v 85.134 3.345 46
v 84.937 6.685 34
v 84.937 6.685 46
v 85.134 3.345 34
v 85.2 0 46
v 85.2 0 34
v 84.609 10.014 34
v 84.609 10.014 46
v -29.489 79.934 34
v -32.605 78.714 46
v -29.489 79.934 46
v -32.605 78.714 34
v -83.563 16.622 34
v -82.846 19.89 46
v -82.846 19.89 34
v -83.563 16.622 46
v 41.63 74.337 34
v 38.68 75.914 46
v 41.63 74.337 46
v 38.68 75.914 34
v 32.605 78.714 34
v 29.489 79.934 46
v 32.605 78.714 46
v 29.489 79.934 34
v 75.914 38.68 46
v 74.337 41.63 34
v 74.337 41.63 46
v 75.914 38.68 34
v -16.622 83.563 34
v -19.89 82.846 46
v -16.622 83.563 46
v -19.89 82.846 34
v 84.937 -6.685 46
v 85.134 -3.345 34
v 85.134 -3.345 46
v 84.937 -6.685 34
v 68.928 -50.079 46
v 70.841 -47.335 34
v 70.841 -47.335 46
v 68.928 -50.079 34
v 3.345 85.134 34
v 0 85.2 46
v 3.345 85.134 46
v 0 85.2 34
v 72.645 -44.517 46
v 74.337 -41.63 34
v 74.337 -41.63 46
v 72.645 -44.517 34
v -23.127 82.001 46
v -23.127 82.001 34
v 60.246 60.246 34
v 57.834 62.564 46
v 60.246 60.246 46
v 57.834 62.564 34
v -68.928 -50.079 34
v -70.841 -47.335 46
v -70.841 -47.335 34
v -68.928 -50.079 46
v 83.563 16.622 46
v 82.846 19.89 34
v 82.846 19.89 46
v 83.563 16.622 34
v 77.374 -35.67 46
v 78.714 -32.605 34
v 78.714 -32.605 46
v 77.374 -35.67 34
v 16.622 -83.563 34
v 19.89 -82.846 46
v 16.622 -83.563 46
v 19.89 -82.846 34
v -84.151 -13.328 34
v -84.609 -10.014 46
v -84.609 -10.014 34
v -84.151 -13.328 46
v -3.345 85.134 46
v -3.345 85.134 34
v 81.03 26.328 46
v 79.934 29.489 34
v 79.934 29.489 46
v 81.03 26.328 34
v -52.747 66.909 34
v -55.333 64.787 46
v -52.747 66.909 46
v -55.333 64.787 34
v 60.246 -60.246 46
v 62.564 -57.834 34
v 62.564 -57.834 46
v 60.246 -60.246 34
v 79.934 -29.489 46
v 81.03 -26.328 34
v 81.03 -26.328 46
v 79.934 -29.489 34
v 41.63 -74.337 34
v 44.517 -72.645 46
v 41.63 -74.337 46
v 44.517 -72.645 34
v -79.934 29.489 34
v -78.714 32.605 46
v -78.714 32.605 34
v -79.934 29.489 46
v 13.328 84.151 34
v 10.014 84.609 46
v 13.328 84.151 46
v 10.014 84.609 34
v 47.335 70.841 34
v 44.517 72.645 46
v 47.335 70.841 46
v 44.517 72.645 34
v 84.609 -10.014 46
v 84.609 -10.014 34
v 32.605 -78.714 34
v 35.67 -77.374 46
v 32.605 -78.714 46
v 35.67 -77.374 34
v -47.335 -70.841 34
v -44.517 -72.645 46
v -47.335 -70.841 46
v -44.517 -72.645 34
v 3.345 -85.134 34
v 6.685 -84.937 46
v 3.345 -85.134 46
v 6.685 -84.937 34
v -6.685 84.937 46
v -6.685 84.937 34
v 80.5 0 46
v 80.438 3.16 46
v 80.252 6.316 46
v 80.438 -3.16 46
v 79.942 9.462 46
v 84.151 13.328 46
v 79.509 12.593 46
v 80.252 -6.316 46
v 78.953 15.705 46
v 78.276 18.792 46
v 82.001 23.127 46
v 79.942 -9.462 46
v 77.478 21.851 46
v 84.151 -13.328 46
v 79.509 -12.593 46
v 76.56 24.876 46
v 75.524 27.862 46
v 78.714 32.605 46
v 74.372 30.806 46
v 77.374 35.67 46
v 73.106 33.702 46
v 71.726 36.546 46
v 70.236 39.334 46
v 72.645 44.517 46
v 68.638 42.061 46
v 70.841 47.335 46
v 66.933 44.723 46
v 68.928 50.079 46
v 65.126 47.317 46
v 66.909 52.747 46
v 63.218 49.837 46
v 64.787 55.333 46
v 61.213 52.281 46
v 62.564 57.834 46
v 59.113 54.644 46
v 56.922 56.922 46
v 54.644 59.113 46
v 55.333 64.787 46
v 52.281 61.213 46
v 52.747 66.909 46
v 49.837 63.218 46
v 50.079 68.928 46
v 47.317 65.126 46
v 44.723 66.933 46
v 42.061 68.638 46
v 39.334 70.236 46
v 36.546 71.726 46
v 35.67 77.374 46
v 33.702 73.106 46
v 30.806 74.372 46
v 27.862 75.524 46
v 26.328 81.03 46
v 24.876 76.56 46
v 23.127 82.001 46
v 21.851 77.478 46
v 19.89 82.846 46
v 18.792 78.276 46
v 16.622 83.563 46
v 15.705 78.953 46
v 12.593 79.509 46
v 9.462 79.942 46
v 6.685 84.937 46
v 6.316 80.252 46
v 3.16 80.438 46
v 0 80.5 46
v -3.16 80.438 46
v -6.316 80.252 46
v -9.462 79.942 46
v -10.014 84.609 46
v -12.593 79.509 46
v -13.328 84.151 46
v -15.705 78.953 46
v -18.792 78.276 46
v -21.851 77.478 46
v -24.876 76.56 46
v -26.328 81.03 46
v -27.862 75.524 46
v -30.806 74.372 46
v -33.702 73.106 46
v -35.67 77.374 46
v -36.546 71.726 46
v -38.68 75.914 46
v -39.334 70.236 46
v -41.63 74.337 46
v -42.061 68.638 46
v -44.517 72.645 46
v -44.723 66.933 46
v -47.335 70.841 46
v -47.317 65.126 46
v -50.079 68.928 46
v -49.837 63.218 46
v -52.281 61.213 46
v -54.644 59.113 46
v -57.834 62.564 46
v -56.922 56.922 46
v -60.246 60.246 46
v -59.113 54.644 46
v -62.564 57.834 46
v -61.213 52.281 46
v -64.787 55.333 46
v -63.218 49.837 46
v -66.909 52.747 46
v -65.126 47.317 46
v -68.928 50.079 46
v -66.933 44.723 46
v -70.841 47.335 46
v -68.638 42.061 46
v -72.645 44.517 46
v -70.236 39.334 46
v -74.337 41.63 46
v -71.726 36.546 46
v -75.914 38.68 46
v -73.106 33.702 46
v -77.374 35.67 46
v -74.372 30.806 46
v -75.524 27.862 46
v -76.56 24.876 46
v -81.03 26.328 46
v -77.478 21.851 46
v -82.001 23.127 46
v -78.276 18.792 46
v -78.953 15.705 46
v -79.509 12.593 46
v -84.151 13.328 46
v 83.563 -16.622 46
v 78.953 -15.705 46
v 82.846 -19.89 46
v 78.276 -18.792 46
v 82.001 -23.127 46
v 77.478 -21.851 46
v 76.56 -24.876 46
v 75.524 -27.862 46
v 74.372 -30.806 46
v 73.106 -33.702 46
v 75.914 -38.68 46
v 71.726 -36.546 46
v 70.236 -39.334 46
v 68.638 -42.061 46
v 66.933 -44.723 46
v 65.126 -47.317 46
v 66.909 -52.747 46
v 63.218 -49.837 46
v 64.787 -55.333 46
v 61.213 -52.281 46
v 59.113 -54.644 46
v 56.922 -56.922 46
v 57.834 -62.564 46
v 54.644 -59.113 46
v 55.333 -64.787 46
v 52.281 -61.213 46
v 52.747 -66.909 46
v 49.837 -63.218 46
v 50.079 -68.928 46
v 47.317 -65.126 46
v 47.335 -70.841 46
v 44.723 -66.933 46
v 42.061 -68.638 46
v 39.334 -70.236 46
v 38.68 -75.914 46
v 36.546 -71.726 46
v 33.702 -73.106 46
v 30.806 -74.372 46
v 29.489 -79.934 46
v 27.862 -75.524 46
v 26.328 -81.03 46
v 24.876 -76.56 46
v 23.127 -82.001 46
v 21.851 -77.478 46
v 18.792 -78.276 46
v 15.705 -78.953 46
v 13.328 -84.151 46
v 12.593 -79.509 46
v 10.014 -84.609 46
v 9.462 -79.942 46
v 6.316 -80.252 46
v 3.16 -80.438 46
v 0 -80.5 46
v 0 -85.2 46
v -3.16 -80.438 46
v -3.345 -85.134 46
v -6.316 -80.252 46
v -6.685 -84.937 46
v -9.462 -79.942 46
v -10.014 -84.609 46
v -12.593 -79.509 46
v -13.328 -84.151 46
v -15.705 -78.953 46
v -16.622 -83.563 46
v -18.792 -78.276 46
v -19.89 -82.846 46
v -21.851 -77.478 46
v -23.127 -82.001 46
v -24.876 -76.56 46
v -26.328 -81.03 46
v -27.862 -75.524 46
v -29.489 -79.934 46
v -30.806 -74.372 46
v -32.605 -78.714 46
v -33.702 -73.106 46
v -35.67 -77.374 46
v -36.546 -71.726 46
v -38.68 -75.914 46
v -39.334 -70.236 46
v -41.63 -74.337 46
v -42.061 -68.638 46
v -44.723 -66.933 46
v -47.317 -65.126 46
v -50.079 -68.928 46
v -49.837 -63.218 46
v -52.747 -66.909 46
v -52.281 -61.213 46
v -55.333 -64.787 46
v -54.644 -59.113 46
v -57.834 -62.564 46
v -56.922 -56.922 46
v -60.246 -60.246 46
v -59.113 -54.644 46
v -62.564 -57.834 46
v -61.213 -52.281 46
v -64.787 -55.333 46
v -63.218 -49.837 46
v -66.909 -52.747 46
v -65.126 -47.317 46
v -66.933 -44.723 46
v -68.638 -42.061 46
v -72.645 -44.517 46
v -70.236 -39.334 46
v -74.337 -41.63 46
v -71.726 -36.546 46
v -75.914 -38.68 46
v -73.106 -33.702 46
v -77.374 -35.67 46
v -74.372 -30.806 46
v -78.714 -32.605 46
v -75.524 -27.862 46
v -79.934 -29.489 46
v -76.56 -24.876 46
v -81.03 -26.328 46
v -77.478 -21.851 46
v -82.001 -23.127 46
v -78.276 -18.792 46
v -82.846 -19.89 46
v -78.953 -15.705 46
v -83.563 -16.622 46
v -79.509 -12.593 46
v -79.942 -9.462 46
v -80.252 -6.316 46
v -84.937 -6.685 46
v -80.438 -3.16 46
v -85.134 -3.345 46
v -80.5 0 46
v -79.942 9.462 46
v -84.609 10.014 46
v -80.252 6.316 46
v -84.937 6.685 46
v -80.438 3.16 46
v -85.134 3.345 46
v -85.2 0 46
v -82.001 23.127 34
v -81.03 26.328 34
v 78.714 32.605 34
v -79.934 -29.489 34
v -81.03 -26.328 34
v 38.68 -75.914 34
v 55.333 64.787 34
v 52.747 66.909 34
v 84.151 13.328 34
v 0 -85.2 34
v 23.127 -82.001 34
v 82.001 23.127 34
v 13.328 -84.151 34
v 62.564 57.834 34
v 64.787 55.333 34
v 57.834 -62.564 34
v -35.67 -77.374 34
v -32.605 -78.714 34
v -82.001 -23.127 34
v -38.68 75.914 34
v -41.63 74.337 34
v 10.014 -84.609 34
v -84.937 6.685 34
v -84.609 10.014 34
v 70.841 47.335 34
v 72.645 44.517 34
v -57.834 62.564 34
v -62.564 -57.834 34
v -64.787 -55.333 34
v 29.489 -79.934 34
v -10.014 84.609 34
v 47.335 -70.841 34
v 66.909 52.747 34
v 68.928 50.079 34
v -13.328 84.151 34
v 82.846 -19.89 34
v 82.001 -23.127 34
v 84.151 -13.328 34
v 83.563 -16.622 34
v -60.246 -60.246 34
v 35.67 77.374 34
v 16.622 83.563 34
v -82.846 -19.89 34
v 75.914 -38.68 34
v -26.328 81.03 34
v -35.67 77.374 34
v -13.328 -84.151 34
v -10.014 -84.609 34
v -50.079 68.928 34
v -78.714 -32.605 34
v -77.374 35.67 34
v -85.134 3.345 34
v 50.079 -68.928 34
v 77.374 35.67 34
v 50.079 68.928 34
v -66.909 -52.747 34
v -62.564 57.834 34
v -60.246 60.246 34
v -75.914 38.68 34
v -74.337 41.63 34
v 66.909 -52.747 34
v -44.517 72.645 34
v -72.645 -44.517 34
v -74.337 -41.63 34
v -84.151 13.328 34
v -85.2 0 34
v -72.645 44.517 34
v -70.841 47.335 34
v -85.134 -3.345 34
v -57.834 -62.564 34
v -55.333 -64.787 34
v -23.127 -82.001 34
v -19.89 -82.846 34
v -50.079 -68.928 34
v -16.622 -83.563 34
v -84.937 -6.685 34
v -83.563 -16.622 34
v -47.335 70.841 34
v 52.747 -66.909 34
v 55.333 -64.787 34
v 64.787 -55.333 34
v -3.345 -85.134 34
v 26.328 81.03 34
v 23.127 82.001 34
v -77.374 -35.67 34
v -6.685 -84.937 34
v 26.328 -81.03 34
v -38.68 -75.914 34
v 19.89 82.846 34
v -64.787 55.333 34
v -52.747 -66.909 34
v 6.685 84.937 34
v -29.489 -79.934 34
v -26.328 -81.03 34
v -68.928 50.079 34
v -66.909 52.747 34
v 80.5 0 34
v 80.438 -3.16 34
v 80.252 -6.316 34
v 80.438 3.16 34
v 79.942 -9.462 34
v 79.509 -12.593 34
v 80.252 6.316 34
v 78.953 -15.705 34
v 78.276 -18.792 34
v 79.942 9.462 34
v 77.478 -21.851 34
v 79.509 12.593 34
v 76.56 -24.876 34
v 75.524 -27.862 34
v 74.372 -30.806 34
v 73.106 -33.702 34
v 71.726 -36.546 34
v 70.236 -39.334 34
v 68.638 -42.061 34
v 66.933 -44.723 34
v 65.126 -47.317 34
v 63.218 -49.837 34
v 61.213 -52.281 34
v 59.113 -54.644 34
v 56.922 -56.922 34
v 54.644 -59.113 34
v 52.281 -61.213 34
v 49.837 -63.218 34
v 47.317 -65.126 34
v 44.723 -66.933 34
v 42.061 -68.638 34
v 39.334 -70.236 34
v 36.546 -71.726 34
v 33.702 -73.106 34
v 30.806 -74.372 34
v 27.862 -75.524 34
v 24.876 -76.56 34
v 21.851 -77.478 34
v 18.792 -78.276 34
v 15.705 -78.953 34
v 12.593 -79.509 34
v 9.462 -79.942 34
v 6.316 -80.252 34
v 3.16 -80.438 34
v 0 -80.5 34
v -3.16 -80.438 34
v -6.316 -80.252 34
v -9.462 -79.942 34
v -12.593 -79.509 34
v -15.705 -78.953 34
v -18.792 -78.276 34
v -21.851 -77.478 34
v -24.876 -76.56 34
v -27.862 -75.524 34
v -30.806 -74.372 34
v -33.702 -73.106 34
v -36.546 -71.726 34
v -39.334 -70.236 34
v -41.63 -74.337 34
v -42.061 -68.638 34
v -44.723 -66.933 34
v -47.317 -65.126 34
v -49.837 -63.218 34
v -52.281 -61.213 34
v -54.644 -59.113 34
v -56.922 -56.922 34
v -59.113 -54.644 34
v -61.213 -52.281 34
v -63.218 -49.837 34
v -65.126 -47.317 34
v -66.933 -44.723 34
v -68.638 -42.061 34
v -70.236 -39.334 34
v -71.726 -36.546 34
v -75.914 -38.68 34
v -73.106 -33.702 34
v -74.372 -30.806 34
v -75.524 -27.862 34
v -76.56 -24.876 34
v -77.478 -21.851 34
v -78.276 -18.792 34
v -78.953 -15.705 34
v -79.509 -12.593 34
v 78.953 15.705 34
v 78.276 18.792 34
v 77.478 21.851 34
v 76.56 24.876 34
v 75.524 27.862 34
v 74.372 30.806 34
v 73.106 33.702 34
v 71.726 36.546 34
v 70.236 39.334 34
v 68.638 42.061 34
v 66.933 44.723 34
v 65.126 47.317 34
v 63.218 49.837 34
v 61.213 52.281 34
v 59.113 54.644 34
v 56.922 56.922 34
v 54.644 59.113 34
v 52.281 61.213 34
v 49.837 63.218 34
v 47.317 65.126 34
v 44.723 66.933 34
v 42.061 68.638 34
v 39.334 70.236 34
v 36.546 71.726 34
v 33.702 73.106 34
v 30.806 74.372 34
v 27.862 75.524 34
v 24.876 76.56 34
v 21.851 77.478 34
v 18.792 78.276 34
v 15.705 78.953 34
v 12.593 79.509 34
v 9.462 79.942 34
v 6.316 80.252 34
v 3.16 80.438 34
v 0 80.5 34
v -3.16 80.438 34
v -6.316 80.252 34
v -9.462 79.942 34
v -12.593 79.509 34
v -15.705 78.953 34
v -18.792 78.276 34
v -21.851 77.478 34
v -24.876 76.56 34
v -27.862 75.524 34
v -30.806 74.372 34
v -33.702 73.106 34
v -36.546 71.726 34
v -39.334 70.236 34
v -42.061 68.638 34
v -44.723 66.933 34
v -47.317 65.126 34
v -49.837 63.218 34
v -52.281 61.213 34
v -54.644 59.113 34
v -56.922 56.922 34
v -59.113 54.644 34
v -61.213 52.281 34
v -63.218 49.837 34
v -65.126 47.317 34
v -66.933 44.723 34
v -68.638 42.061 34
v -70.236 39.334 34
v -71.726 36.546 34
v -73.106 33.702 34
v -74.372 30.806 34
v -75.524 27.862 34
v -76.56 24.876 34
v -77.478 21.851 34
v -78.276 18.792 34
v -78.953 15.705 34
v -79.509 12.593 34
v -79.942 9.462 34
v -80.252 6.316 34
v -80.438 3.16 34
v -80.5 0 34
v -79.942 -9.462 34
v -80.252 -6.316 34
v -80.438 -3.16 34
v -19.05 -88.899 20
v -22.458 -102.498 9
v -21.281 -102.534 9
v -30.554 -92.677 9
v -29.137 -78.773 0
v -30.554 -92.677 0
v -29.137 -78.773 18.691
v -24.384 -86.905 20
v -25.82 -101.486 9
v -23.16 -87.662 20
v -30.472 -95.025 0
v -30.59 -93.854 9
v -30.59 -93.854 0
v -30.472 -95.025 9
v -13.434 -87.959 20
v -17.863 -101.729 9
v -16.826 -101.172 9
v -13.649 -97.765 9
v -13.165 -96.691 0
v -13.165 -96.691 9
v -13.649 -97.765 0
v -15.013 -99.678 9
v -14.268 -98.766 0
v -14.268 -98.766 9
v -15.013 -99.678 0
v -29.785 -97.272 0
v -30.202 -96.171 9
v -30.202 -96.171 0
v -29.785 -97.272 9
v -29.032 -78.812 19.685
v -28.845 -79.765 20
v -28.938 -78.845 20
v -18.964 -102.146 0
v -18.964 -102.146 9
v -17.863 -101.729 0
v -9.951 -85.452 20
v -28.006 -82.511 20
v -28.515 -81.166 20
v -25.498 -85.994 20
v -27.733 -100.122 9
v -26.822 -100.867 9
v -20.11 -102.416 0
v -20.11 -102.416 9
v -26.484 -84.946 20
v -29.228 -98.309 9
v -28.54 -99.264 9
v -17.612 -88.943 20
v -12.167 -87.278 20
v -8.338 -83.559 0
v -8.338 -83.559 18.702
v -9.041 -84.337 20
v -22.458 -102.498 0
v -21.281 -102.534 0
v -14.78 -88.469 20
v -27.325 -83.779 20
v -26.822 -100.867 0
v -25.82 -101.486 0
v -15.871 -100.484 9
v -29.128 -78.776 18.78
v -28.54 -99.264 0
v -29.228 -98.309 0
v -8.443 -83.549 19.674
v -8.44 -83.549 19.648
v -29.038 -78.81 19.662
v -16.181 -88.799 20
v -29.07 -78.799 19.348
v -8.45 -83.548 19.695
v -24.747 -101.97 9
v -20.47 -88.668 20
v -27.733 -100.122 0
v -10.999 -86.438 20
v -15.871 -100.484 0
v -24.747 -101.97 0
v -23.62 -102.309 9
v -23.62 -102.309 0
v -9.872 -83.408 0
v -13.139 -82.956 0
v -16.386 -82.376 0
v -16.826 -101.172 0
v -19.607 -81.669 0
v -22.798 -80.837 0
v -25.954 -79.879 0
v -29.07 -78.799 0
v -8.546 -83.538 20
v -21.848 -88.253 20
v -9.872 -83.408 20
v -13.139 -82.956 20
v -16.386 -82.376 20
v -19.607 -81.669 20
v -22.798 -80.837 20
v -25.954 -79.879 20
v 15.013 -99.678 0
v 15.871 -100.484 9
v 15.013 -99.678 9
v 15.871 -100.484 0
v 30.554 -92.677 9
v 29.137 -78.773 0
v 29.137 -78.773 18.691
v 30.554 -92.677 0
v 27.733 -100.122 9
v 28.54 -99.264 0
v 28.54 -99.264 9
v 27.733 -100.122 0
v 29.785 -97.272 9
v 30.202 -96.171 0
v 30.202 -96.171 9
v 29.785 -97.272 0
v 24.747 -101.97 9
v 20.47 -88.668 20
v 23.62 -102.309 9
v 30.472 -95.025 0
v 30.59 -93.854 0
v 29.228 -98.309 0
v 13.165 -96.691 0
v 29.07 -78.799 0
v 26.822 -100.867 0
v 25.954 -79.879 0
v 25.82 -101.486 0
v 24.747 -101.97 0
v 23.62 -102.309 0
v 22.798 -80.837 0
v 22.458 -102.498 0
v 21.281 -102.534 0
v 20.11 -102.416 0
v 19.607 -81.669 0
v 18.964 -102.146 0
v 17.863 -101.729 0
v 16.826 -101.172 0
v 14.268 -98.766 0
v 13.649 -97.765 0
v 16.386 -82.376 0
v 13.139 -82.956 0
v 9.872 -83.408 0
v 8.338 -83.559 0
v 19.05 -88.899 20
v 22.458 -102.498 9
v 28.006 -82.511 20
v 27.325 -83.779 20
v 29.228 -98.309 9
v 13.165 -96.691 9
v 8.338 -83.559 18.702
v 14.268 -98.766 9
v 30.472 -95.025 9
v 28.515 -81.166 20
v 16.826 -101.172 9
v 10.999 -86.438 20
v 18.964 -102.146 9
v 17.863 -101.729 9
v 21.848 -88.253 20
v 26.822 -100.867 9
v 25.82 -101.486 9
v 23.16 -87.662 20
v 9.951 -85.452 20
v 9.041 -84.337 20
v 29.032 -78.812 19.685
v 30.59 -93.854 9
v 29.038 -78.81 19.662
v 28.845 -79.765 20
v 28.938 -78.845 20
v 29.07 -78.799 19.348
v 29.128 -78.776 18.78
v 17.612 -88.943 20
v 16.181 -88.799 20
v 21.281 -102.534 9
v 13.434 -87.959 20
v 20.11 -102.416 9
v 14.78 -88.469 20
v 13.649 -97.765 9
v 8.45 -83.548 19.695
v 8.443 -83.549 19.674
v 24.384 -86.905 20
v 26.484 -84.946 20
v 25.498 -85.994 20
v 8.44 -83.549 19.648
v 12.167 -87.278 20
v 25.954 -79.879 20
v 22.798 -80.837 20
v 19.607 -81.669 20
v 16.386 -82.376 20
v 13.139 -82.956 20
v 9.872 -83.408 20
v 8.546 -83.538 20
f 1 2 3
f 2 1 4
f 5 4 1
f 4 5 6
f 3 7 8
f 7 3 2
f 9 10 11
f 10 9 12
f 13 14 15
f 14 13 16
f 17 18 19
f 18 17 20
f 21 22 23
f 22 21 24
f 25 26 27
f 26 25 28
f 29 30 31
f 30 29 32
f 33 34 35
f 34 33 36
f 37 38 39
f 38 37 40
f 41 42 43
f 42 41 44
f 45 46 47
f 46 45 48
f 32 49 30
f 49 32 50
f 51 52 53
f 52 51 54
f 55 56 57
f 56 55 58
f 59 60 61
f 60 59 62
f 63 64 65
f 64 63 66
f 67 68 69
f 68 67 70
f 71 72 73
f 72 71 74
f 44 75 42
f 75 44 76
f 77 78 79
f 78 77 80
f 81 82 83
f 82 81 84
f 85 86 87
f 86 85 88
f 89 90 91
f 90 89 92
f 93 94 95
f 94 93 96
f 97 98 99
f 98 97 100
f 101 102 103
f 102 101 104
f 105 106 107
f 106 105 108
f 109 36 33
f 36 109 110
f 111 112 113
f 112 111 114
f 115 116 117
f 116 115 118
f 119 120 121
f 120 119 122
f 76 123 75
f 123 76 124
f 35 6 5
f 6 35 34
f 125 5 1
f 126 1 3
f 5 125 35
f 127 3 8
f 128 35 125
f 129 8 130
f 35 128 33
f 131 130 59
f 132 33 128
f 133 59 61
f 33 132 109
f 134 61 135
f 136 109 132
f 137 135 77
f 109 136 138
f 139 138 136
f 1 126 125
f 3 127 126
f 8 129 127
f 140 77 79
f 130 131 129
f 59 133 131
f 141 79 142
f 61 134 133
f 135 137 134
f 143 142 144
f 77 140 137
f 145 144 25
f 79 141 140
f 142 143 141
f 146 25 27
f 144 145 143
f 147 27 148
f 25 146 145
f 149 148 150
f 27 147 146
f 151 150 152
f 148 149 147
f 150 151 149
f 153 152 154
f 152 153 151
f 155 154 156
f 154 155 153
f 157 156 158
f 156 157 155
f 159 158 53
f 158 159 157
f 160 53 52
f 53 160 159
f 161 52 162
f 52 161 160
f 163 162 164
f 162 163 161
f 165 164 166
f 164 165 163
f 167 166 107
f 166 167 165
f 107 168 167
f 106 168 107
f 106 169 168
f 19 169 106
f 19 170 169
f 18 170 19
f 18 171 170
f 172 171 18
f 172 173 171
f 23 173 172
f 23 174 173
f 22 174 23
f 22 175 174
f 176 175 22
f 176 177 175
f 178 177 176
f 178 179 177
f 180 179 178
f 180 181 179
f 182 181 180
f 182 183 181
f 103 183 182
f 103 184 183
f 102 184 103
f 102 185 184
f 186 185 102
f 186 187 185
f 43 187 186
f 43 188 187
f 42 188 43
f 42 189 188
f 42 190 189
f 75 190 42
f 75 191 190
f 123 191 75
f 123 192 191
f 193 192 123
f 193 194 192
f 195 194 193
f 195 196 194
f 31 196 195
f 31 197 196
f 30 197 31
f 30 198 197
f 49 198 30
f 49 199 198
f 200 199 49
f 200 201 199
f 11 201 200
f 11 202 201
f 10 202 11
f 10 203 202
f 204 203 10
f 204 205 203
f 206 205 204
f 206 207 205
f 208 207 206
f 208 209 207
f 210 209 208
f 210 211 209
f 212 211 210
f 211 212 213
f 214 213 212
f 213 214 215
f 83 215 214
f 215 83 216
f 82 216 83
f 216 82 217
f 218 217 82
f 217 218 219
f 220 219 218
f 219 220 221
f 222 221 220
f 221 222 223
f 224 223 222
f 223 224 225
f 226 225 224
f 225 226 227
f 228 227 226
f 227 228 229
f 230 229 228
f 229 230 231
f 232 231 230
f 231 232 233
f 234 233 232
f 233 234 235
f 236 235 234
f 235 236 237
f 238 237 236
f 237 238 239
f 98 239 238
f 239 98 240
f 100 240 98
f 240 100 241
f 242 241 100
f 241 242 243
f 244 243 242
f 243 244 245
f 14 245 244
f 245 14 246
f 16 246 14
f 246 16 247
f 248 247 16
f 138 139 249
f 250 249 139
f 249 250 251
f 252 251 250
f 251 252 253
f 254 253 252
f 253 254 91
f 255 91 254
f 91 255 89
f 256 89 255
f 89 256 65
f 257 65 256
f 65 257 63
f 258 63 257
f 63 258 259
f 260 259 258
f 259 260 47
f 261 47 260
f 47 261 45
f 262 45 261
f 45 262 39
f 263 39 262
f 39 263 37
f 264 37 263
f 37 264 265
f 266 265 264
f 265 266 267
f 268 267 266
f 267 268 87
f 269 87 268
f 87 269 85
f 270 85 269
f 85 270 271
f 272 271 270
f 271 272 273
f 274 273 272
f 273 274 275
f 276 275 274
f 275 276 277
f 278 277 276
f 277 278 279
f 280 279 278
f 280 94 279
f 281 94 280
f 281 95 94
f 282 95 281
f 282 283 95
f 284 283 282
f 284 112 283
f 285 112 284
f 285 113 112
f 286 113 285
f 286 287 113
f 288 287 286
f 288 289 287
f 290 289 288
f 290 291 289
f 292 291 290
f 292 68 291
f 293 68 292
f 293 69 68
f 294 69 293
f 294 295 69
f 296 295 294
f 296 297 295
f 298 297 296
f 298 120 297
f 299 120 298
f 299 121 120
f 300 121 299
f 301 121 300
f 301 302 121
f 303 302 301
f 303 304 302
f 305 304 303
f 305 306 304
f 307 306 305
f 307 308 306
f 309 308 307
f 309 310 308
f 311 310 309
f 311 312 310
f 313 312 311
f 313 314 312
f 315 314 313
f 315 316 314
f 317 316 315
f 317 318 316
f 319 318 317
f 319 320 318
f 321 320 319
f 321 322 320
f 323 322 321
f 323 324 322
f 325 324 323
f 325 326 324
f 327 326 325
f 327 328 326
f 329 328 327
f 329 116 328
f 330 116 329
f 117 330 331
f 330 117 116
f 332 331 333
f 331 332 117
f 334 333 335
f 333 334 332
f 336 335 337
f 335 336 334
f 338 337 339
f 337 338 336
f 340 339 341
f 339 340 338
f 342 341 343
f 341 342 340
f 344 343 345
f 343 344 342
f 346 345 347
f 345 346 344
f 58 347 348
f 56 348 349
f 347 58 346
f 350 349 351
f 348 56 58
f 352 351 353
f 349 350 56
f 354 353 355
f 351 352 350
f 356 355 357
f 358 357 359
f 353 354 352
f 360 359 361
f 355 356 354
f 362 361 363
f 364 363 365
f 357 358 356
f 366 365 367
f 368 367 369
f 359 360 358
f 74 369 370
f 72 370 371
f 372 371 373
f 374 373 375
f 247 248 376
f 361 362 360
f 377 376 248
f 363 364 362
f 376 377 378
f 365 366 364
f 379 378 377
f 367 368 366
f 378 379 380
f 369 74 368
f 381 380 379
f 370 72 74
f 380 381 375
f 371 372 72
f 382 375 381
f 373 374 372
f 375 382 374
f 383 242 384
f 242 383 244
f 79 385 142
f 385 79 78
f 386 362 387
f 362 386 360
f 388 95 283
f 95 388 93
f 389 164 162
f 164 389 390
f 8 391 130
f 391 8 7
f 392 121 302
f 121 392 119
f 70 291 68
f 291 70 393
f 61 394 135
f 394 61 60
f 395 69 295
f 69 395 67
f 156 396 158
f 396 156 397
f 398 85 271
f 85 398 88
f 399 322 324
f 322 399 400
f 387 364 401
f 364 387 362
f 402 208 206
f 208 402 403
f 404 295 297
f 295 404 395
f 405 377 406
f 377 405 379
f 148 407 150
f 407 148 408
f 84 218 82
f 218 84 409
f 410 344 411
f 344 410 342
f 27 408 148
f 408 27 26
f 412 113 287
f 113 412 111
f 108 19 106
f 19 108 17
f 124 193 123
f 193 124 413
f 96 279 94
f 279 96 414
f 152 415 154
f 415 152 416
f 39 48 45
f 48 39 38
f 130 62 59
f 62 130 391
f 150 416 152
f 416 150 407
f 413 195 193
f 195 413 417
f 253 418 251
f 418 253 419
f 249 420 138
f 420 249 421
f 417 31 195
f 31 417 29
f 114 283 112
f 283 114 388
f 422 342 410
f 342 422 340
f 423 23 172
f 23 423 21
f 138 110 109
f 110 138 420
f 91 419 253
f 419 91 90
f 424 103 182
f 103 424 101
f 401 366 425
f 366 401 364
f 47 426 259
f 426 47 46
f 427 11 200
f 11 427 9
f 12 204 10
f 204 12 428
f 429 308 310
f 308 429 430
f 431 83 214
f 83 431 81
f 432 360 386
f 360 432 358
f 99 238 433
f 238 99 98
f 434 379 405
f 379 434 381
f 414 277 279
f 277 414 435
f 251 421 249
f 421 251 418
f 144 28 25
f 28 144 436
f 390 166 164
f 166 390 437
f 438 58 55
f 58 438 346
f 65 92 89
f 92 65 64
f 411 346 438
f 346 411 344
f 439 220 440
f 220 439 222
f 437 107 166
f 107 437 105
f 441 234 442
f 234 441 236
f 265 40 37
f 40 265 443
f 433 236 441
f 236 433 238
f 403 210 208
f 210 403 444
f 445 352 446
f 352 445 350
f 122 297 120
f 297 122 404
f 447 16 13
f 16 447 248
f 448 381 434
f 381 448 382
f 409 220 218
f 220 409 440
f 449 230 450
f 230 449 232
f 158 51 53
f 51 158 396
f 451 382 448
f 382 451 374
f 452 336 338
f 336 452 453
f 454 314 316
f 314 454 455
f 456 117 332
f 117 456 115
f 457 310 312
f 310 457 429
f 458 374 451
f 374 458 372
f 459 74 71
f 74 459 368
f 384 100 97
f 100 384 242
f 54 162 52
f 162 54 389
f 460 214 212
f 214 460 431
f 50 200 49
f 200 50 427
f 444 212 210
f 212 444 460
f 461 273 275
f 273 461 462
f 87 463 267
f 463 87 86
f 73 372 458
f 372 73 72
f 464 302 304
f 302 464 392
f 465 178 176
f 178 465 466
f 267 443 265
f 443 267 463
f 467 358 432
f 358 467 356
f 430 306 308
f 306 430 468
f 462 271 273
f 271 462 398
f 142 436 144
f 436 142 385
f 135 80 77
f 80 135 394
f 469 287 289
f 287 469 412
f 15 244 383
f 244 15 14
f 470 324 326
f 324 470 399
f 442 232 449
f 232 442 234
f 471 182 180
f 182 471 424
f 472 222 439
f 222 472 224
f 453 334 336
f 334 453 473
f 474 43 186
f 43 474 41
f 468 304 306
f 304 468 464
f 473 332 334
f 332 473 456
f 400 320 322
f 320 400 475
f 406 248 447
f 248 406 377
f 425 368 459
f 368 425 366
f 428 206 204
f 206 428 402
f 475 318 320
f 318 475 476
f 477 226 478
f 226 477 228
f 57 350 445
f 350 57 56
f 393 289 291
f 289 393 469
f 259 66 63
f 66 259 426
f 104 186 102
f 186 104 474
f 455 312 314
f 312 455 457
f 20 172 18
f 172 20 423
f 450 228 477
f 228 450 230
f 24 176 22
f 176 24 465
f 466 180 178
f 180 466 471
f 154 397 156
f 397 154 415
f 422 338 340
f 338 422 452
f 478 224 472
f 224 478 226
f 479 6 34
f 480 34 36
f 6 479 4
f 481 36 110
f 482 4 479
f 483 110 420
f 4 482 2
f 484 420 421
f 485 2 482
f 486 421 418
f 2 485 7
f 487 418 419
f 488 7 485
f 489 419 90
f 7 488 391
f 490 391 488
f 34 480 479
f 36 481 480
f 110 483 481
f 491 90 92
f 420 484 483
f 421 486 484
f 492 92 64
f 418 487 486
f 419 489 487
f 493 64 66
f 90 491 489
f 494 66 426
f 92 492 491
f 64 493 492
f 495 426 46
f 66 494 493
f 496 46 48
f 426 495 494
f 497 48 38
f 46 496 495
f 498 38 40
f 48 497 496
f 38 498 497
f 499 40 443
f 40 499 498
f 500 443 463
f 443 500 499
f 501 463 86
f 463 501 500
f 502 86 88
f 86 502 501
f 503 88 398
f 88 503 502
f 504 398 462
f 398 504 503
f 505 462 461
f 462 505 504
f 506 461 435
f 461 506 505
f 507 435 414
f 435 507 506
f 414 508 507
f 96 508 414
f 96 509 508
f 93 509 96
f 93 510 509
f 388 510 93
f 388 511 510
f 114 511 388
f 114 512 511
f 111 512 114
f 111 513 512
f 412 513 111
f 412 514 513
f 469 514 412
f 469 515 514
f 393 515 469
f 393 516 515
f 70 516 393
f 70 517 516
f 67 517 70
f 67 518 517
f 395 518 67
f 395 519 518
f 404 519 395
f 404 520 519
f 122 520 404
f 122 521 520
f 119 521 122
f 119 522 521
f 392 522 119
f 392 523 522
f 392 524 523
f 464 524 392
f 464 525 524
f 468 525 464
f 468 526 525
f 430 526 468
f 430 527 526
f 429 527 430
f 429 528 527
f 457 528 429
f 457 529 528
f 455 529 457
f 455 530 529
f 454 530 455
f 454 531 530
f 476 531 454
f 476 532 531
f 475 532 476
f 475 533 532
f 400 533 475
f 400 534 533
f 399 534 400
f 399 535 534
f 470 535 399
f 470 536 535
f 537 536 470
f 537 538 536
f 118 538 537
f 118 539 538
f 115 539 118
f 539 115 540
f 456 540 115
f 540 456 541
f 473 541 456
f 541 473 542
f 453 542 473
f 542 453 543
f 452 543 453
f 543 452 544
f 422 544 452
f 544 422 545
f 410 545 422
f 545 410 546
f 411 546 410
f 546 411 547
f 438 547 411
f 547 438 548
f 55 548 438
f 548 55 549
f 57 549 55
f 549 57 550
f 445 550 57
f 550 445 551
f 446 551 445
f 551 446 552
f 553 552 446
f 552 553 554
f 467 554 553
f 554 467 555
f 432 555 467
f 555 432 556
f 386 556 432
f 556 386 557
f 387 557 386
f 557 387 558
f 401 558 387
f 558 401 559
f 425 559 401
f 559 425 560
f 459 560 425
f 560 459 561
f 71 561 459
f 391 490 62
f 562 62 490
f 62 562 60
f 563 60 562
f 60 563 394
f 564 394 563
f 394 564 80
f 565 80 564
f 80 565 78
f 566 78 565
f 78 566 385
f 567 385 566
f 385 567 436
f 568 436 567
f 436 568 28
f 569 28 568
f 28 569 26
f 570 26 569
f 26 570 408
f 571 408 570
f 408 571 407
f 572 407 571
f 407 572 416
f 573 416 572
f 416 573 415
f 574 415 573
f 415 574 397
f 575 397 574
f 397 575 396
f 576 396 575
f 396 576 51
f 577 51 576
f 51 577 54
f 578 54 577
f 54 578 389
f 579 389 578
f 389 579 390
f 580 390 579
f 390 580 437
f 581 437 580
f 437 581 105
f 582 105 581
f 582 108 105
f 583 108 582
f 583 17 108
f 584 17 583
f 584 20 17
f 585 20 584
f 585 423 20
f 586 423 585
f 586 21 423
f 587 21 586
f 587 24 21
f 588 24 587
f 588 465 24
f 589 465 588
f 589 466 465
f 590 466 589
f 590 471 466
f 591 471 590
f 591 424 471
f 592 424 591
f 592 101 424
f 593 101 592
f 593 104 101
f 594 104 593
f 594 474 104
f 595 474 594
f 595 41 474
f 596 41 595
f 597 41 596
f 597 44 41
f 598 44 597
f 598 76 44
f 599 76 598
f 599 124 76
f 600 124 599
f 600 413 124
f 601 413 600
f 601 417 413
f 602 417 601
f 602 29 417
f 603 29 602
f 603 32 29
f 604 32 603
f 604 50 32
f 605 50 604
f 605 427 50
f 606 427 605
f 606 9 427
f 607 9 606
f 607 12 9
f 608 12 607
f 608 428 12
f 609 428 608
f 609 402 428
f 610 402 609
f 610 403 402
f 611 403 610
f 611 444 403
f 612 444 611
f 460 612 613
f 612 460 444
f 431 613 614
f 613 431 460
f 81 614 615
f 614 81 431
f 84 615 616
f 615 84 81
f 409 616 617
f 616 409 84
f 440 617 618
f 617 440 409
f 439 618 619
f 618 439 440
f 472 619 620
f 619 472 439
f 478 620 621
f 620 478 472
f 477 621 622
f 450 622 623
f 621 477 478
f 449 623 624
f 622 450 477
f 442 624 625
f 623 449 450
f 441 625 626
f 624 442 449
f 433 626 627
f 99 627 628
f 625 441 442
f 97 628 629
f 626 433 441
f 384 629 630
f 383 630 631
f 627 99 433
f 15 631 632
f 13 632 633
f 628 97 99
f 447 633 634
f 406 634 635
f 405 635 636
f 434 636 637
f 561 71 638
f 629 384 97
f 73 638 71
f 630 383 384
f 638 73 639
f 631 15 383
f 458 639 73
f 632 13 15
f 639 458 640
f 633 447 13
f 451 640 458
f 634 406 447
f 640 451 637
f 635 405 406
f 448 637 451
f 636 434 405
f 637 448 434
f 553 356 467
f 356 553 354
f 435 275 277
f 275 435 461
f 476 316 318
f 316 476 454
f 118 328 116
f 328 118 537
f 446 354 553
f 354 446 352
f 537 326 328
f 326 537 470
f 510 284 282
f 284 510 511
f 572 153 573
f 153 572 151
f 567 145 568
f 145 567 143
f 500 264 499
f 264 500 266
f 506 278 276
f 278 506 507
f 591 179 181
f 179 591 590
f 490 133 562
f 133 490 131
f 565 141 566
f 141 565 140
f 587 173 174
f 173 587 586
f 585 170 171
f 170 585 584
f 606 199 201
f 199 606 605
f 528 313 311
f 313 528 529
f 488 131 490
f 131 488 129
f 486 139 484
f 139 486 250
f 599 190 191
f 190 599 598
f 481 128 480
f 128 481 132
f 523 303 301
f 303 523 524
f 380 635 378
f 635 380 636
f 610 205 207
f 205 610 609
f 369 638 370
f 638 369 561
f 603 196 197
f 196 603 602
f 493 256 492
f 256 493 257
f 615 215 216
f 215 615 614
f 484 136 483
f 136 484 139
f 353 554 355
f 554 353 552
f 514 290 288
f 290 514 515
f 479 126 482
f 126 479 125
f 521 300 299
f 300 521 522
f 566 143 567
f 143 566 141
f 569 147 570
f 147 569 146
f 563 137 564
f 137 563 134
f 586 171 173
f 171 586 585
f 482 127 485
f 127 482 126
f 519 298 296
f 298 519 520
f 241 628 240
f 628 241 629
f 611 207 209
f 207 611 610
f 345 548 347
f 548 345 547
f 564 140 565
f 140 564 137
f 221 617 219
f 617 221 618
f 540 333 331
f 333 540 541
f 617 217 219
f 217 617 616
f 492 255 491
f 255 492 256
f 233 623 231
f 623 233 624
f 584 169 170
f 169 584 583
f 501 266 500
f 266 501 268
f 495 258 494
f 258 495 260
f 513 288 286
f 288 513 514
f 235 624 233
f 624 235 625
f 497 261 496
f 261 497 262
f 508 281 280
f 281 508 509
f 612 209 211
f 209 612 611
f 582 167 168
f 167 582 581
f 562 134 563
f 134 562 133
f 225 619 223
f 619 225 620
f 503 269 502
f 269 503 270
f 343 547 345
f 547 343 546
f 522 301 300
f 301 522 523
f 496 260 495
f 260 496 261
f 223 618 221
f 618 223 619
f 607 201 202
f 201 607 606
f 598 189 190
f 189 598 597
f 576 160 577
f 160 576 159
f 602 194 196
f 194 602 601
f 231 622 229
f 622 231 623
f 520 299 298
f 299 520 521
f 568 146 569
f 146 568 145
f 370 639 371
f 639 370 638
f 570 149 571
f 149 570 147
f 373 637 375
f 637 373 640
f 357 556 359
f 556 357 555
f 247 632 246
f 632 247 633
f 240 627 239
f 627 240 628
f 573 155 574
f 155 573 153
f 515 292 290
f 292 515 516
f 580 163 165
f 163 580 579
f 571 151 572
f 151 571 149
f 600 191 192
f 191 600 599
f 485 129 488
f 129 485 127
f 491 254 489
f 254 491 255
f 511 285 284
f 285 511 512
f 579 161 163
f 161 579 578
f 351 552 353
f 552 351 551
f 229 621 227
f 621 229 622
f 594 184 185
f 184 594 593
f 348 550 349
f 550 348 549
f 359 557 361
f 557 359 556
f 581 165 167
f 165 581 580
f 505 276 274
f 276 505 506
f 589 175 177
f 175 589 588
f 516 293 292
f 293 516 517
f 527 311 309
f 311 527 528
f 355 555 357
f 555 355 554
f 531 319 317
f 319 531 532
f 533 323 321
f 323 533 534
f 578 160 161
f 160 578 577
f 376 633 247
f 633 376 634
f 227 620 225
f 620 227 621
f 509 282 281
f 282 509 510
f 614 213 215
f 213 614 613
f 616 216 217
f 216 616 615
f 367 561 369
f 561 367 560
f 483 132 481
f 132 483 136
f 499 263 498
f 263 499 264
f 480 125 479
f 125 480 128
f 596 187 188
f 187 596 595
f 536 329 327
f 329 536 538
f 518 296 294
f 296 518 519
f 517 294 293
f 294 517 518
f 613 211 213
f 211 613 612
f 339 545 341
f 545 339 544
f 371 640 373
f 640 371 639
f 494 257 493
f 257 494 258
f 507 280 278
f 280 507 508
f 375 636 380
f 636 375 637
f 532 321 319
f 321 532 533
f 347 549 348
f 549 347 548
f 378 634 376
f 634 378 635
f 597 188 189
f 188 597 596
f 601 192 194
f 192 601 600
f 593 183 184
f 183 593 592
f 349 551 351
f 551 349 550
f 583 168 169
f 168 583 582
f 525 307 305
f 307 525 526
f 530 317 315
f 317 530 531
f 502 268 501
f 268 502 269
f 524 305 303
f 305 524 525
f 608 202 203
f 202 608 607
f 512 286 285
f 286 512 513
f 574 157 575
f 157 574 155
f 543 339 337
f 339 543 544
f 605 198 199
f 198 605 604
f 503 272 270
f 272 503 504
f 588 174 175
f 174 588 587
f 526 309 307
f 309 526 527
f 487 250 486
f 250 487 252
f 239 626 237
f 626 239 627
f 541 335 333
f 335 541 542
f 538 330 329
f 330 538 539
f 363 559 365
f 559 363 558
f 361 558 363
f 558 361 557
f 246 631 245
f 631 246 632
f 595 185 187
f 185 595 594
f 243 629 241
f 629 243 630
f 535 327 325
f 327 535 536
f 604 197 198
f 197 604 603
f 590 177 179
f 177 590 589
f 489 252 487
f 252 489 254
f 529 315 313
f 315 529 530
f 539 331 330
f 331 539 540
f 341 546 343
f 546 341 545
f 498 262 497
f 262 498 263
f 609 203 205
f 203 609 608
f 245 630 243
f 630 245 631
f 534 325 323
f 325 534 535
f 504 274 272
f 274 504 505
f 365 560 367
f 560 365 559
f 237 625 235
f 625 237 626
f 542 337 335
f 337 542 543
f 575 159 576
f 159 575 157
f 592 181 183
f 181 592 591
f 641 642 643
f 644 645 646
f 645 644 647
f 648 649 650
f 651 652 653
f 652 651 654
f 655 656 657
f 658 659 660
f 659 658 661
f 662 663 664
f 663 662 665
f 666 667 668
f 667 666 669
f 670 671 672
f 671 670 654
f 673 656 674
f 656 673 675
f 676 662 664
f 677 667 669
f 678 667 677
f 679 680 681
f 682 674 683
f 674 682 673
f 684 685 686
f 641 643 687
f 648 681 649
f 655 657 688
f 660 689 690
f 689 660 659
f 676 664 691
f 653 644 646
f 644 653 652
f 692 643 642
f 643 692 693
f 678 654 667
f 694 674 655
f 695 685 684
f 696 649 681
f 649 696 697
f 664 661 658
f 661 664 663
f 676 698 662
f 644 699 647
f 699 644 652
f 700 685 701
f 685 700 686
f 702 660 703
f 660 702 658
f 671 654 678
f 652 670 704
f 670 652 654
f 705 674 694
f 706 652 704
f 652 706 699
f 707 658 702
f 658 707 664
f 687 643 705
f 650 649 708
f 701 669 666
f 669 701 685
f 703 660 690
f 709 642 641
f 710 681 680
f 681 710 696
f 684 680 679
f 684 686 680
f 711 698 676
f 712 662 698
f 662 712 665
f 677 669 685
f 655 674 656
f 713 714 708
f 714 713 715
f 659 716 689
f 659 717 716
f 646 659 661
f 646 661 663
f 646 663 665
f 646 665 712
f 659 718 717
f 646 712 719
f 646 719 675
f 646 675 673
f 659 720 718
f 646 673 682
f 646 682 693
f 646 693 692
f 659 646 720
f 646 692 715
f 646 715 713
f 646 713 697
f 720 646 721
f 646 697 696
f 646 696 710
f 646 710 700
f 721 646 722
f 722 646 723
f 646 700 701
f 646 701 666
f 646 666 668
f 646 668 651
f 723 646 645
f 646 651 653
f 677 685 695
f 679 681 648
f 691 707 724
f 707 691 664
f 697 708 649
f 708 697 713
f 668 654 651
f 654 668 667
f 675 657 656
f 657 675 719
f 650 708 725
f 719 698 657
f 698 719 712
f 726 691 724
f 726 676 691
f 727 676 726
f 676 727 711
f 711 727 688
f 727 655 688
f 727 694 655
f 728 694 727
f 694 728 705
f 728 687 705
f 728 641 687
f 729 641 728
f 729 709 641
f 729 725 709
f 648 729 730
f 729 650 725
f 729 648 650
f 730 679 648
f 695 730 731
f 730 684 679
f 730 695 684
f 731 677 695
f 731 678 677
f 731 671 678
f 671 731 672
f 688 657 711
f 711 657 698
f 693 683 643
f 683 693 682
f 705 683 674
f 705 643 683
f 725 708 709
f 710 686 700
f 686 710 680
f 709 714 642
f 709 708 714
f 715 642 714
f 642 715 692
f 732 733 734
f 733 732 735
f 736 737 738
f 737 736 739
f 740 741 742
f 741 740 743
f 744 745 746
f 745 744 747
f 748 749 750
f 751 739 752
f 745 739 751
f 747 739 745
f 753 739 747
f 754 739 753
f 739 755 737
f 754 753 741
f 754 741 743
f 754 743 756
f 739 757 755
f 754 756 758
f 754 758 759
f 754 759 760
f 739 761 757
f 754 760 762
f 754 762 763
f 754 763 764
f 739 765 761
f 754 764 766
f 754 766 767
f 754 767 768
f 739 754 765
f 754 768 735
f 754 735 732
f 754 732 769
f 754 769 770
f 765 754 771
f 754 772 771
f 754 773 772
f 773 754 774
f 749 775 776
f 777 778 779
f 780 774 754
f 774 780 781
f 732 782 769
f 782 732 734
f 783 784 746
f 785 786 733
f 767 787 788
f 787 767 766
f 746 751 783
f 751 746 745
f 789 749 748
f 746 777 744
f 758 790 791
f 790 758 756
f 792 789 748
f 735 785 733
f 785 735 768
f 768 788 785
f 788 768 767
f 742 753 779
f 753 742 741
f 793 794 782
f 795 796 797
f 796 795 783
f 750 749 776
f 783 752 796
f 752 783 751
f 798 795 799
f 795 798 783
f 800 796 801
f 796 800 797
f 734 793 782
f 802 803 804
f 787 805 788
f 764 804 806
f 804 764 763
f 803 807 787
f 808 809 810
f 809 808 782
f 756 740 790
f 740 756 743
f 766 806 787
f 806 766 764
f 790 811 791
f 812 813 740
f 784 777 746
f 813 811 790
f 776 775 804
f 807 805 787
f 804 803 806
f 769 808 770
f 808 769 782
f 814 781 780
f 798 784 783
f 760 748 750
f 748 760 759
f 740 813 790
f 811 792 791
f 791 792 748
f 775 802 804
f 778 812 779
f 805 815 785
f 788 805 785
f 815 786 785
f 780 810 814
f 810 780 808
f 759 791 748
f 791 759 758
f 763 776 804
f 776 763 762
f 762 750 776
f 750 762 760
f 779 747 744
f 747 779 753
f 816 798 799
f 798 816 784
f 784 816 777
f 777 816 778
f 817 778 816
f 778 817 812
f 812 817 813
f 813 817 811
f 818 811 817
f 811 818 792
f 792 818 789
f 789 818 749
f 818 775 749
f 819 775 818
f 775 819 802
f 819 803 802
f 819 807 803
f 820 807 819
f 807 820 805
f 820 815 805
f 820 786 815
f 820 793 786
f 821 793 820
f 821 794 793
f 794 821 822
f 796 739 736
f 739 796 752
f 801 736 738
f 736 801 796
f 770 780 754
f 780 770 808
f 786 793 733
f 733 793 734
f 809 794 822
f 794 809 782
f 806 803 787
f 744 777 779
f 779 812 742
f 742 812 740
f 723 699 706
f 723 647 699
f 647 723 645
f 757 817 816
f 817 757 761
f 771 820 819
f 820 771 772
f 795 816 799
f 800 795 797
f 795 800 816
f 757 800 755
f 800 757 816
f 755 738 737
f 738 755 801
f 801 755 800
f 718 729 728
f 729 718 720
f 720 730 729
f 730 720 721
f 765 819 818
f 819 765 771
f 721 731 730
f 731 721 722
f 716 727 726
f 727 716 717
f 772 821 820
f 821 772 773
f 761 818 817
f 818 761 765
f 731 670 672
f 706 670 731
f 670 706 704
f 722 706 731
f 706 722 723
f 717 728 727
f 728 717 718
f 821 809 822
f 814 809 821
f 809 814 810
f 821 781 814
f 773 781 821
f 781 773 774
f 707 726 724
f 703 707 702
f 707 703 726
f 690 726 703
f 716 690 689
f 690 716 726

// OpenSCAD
// file: comun.scad
// Impronta 3D — Porta pan dulce "traje de Papá Noel" (diseño propio, 4 colores con AMS).
// El pan dulce de 500 g (o un panettone de 15 cm) entra adentro y queda "vestido" de Papá Noel:
// saco rojo, cinturón negro con hebilla dorada, borde de piel blanco arriba y al frente, y las botas.
// Se imprime parado, sin soportes. Las piezas no se pisan entre sí (cada color es un volumen aparte).
ri = 80.5;        // radio interior (entra un pan dulce de hasta 16 cm)
re = 84;          // radio exterior del saco
alto = 80;
cint = [34, 46];  // cinturón: de z a z
piel = 66;        // desde acá arriba, borde de piel
$fn = 160;
module anillo(r1, r2, z1, z2) translate([0, 0, z1]) difference() { cylinder(r = r2, h = z2 - z1); translate([0, 0, -1]) cylinder(r = r1, h = z2 - z1 + 2); }
module bota(lado) rotate(-90 + lado * 13) {
    // caña pegada al saco y punta hacia afuera, apoyadas en la cama
    hull() { translate([re - 4, 0, 0]) cylinder(r = 11, h = 20, $fn = 48); translate([re + 12, 0, 0]) cylinder(r = 9, h = 9, $fn = 48); }
}
module botas() difference() { union() { bota(-1); bota(1); } translate([0, 0, -1]) cylinder(r = re - 0.01, h = 40); }
module tira() rotate(-90) translate([re - 0.01, -10, 20]) cube([2.6, 20, piel - 20]);  // franja de piel al frente
module hebilla() rotate(-90) translate([re + 1.2, 0, (cint[0] + cint[1]) / 2]) rotate([0, 90, 0]) difference() {
    translate([-9, -11, 0]) cube([18, 22, 2.2]); translate([-5.5, -7.5, -1]) cube([11, 15, 5]); }
// main file
include <comun.scad>
// negro: cinturón (reemplaza esa franja del saco) y botas
anillo(ri, re + 1.2, cint[0], cint[1]);
botas();
